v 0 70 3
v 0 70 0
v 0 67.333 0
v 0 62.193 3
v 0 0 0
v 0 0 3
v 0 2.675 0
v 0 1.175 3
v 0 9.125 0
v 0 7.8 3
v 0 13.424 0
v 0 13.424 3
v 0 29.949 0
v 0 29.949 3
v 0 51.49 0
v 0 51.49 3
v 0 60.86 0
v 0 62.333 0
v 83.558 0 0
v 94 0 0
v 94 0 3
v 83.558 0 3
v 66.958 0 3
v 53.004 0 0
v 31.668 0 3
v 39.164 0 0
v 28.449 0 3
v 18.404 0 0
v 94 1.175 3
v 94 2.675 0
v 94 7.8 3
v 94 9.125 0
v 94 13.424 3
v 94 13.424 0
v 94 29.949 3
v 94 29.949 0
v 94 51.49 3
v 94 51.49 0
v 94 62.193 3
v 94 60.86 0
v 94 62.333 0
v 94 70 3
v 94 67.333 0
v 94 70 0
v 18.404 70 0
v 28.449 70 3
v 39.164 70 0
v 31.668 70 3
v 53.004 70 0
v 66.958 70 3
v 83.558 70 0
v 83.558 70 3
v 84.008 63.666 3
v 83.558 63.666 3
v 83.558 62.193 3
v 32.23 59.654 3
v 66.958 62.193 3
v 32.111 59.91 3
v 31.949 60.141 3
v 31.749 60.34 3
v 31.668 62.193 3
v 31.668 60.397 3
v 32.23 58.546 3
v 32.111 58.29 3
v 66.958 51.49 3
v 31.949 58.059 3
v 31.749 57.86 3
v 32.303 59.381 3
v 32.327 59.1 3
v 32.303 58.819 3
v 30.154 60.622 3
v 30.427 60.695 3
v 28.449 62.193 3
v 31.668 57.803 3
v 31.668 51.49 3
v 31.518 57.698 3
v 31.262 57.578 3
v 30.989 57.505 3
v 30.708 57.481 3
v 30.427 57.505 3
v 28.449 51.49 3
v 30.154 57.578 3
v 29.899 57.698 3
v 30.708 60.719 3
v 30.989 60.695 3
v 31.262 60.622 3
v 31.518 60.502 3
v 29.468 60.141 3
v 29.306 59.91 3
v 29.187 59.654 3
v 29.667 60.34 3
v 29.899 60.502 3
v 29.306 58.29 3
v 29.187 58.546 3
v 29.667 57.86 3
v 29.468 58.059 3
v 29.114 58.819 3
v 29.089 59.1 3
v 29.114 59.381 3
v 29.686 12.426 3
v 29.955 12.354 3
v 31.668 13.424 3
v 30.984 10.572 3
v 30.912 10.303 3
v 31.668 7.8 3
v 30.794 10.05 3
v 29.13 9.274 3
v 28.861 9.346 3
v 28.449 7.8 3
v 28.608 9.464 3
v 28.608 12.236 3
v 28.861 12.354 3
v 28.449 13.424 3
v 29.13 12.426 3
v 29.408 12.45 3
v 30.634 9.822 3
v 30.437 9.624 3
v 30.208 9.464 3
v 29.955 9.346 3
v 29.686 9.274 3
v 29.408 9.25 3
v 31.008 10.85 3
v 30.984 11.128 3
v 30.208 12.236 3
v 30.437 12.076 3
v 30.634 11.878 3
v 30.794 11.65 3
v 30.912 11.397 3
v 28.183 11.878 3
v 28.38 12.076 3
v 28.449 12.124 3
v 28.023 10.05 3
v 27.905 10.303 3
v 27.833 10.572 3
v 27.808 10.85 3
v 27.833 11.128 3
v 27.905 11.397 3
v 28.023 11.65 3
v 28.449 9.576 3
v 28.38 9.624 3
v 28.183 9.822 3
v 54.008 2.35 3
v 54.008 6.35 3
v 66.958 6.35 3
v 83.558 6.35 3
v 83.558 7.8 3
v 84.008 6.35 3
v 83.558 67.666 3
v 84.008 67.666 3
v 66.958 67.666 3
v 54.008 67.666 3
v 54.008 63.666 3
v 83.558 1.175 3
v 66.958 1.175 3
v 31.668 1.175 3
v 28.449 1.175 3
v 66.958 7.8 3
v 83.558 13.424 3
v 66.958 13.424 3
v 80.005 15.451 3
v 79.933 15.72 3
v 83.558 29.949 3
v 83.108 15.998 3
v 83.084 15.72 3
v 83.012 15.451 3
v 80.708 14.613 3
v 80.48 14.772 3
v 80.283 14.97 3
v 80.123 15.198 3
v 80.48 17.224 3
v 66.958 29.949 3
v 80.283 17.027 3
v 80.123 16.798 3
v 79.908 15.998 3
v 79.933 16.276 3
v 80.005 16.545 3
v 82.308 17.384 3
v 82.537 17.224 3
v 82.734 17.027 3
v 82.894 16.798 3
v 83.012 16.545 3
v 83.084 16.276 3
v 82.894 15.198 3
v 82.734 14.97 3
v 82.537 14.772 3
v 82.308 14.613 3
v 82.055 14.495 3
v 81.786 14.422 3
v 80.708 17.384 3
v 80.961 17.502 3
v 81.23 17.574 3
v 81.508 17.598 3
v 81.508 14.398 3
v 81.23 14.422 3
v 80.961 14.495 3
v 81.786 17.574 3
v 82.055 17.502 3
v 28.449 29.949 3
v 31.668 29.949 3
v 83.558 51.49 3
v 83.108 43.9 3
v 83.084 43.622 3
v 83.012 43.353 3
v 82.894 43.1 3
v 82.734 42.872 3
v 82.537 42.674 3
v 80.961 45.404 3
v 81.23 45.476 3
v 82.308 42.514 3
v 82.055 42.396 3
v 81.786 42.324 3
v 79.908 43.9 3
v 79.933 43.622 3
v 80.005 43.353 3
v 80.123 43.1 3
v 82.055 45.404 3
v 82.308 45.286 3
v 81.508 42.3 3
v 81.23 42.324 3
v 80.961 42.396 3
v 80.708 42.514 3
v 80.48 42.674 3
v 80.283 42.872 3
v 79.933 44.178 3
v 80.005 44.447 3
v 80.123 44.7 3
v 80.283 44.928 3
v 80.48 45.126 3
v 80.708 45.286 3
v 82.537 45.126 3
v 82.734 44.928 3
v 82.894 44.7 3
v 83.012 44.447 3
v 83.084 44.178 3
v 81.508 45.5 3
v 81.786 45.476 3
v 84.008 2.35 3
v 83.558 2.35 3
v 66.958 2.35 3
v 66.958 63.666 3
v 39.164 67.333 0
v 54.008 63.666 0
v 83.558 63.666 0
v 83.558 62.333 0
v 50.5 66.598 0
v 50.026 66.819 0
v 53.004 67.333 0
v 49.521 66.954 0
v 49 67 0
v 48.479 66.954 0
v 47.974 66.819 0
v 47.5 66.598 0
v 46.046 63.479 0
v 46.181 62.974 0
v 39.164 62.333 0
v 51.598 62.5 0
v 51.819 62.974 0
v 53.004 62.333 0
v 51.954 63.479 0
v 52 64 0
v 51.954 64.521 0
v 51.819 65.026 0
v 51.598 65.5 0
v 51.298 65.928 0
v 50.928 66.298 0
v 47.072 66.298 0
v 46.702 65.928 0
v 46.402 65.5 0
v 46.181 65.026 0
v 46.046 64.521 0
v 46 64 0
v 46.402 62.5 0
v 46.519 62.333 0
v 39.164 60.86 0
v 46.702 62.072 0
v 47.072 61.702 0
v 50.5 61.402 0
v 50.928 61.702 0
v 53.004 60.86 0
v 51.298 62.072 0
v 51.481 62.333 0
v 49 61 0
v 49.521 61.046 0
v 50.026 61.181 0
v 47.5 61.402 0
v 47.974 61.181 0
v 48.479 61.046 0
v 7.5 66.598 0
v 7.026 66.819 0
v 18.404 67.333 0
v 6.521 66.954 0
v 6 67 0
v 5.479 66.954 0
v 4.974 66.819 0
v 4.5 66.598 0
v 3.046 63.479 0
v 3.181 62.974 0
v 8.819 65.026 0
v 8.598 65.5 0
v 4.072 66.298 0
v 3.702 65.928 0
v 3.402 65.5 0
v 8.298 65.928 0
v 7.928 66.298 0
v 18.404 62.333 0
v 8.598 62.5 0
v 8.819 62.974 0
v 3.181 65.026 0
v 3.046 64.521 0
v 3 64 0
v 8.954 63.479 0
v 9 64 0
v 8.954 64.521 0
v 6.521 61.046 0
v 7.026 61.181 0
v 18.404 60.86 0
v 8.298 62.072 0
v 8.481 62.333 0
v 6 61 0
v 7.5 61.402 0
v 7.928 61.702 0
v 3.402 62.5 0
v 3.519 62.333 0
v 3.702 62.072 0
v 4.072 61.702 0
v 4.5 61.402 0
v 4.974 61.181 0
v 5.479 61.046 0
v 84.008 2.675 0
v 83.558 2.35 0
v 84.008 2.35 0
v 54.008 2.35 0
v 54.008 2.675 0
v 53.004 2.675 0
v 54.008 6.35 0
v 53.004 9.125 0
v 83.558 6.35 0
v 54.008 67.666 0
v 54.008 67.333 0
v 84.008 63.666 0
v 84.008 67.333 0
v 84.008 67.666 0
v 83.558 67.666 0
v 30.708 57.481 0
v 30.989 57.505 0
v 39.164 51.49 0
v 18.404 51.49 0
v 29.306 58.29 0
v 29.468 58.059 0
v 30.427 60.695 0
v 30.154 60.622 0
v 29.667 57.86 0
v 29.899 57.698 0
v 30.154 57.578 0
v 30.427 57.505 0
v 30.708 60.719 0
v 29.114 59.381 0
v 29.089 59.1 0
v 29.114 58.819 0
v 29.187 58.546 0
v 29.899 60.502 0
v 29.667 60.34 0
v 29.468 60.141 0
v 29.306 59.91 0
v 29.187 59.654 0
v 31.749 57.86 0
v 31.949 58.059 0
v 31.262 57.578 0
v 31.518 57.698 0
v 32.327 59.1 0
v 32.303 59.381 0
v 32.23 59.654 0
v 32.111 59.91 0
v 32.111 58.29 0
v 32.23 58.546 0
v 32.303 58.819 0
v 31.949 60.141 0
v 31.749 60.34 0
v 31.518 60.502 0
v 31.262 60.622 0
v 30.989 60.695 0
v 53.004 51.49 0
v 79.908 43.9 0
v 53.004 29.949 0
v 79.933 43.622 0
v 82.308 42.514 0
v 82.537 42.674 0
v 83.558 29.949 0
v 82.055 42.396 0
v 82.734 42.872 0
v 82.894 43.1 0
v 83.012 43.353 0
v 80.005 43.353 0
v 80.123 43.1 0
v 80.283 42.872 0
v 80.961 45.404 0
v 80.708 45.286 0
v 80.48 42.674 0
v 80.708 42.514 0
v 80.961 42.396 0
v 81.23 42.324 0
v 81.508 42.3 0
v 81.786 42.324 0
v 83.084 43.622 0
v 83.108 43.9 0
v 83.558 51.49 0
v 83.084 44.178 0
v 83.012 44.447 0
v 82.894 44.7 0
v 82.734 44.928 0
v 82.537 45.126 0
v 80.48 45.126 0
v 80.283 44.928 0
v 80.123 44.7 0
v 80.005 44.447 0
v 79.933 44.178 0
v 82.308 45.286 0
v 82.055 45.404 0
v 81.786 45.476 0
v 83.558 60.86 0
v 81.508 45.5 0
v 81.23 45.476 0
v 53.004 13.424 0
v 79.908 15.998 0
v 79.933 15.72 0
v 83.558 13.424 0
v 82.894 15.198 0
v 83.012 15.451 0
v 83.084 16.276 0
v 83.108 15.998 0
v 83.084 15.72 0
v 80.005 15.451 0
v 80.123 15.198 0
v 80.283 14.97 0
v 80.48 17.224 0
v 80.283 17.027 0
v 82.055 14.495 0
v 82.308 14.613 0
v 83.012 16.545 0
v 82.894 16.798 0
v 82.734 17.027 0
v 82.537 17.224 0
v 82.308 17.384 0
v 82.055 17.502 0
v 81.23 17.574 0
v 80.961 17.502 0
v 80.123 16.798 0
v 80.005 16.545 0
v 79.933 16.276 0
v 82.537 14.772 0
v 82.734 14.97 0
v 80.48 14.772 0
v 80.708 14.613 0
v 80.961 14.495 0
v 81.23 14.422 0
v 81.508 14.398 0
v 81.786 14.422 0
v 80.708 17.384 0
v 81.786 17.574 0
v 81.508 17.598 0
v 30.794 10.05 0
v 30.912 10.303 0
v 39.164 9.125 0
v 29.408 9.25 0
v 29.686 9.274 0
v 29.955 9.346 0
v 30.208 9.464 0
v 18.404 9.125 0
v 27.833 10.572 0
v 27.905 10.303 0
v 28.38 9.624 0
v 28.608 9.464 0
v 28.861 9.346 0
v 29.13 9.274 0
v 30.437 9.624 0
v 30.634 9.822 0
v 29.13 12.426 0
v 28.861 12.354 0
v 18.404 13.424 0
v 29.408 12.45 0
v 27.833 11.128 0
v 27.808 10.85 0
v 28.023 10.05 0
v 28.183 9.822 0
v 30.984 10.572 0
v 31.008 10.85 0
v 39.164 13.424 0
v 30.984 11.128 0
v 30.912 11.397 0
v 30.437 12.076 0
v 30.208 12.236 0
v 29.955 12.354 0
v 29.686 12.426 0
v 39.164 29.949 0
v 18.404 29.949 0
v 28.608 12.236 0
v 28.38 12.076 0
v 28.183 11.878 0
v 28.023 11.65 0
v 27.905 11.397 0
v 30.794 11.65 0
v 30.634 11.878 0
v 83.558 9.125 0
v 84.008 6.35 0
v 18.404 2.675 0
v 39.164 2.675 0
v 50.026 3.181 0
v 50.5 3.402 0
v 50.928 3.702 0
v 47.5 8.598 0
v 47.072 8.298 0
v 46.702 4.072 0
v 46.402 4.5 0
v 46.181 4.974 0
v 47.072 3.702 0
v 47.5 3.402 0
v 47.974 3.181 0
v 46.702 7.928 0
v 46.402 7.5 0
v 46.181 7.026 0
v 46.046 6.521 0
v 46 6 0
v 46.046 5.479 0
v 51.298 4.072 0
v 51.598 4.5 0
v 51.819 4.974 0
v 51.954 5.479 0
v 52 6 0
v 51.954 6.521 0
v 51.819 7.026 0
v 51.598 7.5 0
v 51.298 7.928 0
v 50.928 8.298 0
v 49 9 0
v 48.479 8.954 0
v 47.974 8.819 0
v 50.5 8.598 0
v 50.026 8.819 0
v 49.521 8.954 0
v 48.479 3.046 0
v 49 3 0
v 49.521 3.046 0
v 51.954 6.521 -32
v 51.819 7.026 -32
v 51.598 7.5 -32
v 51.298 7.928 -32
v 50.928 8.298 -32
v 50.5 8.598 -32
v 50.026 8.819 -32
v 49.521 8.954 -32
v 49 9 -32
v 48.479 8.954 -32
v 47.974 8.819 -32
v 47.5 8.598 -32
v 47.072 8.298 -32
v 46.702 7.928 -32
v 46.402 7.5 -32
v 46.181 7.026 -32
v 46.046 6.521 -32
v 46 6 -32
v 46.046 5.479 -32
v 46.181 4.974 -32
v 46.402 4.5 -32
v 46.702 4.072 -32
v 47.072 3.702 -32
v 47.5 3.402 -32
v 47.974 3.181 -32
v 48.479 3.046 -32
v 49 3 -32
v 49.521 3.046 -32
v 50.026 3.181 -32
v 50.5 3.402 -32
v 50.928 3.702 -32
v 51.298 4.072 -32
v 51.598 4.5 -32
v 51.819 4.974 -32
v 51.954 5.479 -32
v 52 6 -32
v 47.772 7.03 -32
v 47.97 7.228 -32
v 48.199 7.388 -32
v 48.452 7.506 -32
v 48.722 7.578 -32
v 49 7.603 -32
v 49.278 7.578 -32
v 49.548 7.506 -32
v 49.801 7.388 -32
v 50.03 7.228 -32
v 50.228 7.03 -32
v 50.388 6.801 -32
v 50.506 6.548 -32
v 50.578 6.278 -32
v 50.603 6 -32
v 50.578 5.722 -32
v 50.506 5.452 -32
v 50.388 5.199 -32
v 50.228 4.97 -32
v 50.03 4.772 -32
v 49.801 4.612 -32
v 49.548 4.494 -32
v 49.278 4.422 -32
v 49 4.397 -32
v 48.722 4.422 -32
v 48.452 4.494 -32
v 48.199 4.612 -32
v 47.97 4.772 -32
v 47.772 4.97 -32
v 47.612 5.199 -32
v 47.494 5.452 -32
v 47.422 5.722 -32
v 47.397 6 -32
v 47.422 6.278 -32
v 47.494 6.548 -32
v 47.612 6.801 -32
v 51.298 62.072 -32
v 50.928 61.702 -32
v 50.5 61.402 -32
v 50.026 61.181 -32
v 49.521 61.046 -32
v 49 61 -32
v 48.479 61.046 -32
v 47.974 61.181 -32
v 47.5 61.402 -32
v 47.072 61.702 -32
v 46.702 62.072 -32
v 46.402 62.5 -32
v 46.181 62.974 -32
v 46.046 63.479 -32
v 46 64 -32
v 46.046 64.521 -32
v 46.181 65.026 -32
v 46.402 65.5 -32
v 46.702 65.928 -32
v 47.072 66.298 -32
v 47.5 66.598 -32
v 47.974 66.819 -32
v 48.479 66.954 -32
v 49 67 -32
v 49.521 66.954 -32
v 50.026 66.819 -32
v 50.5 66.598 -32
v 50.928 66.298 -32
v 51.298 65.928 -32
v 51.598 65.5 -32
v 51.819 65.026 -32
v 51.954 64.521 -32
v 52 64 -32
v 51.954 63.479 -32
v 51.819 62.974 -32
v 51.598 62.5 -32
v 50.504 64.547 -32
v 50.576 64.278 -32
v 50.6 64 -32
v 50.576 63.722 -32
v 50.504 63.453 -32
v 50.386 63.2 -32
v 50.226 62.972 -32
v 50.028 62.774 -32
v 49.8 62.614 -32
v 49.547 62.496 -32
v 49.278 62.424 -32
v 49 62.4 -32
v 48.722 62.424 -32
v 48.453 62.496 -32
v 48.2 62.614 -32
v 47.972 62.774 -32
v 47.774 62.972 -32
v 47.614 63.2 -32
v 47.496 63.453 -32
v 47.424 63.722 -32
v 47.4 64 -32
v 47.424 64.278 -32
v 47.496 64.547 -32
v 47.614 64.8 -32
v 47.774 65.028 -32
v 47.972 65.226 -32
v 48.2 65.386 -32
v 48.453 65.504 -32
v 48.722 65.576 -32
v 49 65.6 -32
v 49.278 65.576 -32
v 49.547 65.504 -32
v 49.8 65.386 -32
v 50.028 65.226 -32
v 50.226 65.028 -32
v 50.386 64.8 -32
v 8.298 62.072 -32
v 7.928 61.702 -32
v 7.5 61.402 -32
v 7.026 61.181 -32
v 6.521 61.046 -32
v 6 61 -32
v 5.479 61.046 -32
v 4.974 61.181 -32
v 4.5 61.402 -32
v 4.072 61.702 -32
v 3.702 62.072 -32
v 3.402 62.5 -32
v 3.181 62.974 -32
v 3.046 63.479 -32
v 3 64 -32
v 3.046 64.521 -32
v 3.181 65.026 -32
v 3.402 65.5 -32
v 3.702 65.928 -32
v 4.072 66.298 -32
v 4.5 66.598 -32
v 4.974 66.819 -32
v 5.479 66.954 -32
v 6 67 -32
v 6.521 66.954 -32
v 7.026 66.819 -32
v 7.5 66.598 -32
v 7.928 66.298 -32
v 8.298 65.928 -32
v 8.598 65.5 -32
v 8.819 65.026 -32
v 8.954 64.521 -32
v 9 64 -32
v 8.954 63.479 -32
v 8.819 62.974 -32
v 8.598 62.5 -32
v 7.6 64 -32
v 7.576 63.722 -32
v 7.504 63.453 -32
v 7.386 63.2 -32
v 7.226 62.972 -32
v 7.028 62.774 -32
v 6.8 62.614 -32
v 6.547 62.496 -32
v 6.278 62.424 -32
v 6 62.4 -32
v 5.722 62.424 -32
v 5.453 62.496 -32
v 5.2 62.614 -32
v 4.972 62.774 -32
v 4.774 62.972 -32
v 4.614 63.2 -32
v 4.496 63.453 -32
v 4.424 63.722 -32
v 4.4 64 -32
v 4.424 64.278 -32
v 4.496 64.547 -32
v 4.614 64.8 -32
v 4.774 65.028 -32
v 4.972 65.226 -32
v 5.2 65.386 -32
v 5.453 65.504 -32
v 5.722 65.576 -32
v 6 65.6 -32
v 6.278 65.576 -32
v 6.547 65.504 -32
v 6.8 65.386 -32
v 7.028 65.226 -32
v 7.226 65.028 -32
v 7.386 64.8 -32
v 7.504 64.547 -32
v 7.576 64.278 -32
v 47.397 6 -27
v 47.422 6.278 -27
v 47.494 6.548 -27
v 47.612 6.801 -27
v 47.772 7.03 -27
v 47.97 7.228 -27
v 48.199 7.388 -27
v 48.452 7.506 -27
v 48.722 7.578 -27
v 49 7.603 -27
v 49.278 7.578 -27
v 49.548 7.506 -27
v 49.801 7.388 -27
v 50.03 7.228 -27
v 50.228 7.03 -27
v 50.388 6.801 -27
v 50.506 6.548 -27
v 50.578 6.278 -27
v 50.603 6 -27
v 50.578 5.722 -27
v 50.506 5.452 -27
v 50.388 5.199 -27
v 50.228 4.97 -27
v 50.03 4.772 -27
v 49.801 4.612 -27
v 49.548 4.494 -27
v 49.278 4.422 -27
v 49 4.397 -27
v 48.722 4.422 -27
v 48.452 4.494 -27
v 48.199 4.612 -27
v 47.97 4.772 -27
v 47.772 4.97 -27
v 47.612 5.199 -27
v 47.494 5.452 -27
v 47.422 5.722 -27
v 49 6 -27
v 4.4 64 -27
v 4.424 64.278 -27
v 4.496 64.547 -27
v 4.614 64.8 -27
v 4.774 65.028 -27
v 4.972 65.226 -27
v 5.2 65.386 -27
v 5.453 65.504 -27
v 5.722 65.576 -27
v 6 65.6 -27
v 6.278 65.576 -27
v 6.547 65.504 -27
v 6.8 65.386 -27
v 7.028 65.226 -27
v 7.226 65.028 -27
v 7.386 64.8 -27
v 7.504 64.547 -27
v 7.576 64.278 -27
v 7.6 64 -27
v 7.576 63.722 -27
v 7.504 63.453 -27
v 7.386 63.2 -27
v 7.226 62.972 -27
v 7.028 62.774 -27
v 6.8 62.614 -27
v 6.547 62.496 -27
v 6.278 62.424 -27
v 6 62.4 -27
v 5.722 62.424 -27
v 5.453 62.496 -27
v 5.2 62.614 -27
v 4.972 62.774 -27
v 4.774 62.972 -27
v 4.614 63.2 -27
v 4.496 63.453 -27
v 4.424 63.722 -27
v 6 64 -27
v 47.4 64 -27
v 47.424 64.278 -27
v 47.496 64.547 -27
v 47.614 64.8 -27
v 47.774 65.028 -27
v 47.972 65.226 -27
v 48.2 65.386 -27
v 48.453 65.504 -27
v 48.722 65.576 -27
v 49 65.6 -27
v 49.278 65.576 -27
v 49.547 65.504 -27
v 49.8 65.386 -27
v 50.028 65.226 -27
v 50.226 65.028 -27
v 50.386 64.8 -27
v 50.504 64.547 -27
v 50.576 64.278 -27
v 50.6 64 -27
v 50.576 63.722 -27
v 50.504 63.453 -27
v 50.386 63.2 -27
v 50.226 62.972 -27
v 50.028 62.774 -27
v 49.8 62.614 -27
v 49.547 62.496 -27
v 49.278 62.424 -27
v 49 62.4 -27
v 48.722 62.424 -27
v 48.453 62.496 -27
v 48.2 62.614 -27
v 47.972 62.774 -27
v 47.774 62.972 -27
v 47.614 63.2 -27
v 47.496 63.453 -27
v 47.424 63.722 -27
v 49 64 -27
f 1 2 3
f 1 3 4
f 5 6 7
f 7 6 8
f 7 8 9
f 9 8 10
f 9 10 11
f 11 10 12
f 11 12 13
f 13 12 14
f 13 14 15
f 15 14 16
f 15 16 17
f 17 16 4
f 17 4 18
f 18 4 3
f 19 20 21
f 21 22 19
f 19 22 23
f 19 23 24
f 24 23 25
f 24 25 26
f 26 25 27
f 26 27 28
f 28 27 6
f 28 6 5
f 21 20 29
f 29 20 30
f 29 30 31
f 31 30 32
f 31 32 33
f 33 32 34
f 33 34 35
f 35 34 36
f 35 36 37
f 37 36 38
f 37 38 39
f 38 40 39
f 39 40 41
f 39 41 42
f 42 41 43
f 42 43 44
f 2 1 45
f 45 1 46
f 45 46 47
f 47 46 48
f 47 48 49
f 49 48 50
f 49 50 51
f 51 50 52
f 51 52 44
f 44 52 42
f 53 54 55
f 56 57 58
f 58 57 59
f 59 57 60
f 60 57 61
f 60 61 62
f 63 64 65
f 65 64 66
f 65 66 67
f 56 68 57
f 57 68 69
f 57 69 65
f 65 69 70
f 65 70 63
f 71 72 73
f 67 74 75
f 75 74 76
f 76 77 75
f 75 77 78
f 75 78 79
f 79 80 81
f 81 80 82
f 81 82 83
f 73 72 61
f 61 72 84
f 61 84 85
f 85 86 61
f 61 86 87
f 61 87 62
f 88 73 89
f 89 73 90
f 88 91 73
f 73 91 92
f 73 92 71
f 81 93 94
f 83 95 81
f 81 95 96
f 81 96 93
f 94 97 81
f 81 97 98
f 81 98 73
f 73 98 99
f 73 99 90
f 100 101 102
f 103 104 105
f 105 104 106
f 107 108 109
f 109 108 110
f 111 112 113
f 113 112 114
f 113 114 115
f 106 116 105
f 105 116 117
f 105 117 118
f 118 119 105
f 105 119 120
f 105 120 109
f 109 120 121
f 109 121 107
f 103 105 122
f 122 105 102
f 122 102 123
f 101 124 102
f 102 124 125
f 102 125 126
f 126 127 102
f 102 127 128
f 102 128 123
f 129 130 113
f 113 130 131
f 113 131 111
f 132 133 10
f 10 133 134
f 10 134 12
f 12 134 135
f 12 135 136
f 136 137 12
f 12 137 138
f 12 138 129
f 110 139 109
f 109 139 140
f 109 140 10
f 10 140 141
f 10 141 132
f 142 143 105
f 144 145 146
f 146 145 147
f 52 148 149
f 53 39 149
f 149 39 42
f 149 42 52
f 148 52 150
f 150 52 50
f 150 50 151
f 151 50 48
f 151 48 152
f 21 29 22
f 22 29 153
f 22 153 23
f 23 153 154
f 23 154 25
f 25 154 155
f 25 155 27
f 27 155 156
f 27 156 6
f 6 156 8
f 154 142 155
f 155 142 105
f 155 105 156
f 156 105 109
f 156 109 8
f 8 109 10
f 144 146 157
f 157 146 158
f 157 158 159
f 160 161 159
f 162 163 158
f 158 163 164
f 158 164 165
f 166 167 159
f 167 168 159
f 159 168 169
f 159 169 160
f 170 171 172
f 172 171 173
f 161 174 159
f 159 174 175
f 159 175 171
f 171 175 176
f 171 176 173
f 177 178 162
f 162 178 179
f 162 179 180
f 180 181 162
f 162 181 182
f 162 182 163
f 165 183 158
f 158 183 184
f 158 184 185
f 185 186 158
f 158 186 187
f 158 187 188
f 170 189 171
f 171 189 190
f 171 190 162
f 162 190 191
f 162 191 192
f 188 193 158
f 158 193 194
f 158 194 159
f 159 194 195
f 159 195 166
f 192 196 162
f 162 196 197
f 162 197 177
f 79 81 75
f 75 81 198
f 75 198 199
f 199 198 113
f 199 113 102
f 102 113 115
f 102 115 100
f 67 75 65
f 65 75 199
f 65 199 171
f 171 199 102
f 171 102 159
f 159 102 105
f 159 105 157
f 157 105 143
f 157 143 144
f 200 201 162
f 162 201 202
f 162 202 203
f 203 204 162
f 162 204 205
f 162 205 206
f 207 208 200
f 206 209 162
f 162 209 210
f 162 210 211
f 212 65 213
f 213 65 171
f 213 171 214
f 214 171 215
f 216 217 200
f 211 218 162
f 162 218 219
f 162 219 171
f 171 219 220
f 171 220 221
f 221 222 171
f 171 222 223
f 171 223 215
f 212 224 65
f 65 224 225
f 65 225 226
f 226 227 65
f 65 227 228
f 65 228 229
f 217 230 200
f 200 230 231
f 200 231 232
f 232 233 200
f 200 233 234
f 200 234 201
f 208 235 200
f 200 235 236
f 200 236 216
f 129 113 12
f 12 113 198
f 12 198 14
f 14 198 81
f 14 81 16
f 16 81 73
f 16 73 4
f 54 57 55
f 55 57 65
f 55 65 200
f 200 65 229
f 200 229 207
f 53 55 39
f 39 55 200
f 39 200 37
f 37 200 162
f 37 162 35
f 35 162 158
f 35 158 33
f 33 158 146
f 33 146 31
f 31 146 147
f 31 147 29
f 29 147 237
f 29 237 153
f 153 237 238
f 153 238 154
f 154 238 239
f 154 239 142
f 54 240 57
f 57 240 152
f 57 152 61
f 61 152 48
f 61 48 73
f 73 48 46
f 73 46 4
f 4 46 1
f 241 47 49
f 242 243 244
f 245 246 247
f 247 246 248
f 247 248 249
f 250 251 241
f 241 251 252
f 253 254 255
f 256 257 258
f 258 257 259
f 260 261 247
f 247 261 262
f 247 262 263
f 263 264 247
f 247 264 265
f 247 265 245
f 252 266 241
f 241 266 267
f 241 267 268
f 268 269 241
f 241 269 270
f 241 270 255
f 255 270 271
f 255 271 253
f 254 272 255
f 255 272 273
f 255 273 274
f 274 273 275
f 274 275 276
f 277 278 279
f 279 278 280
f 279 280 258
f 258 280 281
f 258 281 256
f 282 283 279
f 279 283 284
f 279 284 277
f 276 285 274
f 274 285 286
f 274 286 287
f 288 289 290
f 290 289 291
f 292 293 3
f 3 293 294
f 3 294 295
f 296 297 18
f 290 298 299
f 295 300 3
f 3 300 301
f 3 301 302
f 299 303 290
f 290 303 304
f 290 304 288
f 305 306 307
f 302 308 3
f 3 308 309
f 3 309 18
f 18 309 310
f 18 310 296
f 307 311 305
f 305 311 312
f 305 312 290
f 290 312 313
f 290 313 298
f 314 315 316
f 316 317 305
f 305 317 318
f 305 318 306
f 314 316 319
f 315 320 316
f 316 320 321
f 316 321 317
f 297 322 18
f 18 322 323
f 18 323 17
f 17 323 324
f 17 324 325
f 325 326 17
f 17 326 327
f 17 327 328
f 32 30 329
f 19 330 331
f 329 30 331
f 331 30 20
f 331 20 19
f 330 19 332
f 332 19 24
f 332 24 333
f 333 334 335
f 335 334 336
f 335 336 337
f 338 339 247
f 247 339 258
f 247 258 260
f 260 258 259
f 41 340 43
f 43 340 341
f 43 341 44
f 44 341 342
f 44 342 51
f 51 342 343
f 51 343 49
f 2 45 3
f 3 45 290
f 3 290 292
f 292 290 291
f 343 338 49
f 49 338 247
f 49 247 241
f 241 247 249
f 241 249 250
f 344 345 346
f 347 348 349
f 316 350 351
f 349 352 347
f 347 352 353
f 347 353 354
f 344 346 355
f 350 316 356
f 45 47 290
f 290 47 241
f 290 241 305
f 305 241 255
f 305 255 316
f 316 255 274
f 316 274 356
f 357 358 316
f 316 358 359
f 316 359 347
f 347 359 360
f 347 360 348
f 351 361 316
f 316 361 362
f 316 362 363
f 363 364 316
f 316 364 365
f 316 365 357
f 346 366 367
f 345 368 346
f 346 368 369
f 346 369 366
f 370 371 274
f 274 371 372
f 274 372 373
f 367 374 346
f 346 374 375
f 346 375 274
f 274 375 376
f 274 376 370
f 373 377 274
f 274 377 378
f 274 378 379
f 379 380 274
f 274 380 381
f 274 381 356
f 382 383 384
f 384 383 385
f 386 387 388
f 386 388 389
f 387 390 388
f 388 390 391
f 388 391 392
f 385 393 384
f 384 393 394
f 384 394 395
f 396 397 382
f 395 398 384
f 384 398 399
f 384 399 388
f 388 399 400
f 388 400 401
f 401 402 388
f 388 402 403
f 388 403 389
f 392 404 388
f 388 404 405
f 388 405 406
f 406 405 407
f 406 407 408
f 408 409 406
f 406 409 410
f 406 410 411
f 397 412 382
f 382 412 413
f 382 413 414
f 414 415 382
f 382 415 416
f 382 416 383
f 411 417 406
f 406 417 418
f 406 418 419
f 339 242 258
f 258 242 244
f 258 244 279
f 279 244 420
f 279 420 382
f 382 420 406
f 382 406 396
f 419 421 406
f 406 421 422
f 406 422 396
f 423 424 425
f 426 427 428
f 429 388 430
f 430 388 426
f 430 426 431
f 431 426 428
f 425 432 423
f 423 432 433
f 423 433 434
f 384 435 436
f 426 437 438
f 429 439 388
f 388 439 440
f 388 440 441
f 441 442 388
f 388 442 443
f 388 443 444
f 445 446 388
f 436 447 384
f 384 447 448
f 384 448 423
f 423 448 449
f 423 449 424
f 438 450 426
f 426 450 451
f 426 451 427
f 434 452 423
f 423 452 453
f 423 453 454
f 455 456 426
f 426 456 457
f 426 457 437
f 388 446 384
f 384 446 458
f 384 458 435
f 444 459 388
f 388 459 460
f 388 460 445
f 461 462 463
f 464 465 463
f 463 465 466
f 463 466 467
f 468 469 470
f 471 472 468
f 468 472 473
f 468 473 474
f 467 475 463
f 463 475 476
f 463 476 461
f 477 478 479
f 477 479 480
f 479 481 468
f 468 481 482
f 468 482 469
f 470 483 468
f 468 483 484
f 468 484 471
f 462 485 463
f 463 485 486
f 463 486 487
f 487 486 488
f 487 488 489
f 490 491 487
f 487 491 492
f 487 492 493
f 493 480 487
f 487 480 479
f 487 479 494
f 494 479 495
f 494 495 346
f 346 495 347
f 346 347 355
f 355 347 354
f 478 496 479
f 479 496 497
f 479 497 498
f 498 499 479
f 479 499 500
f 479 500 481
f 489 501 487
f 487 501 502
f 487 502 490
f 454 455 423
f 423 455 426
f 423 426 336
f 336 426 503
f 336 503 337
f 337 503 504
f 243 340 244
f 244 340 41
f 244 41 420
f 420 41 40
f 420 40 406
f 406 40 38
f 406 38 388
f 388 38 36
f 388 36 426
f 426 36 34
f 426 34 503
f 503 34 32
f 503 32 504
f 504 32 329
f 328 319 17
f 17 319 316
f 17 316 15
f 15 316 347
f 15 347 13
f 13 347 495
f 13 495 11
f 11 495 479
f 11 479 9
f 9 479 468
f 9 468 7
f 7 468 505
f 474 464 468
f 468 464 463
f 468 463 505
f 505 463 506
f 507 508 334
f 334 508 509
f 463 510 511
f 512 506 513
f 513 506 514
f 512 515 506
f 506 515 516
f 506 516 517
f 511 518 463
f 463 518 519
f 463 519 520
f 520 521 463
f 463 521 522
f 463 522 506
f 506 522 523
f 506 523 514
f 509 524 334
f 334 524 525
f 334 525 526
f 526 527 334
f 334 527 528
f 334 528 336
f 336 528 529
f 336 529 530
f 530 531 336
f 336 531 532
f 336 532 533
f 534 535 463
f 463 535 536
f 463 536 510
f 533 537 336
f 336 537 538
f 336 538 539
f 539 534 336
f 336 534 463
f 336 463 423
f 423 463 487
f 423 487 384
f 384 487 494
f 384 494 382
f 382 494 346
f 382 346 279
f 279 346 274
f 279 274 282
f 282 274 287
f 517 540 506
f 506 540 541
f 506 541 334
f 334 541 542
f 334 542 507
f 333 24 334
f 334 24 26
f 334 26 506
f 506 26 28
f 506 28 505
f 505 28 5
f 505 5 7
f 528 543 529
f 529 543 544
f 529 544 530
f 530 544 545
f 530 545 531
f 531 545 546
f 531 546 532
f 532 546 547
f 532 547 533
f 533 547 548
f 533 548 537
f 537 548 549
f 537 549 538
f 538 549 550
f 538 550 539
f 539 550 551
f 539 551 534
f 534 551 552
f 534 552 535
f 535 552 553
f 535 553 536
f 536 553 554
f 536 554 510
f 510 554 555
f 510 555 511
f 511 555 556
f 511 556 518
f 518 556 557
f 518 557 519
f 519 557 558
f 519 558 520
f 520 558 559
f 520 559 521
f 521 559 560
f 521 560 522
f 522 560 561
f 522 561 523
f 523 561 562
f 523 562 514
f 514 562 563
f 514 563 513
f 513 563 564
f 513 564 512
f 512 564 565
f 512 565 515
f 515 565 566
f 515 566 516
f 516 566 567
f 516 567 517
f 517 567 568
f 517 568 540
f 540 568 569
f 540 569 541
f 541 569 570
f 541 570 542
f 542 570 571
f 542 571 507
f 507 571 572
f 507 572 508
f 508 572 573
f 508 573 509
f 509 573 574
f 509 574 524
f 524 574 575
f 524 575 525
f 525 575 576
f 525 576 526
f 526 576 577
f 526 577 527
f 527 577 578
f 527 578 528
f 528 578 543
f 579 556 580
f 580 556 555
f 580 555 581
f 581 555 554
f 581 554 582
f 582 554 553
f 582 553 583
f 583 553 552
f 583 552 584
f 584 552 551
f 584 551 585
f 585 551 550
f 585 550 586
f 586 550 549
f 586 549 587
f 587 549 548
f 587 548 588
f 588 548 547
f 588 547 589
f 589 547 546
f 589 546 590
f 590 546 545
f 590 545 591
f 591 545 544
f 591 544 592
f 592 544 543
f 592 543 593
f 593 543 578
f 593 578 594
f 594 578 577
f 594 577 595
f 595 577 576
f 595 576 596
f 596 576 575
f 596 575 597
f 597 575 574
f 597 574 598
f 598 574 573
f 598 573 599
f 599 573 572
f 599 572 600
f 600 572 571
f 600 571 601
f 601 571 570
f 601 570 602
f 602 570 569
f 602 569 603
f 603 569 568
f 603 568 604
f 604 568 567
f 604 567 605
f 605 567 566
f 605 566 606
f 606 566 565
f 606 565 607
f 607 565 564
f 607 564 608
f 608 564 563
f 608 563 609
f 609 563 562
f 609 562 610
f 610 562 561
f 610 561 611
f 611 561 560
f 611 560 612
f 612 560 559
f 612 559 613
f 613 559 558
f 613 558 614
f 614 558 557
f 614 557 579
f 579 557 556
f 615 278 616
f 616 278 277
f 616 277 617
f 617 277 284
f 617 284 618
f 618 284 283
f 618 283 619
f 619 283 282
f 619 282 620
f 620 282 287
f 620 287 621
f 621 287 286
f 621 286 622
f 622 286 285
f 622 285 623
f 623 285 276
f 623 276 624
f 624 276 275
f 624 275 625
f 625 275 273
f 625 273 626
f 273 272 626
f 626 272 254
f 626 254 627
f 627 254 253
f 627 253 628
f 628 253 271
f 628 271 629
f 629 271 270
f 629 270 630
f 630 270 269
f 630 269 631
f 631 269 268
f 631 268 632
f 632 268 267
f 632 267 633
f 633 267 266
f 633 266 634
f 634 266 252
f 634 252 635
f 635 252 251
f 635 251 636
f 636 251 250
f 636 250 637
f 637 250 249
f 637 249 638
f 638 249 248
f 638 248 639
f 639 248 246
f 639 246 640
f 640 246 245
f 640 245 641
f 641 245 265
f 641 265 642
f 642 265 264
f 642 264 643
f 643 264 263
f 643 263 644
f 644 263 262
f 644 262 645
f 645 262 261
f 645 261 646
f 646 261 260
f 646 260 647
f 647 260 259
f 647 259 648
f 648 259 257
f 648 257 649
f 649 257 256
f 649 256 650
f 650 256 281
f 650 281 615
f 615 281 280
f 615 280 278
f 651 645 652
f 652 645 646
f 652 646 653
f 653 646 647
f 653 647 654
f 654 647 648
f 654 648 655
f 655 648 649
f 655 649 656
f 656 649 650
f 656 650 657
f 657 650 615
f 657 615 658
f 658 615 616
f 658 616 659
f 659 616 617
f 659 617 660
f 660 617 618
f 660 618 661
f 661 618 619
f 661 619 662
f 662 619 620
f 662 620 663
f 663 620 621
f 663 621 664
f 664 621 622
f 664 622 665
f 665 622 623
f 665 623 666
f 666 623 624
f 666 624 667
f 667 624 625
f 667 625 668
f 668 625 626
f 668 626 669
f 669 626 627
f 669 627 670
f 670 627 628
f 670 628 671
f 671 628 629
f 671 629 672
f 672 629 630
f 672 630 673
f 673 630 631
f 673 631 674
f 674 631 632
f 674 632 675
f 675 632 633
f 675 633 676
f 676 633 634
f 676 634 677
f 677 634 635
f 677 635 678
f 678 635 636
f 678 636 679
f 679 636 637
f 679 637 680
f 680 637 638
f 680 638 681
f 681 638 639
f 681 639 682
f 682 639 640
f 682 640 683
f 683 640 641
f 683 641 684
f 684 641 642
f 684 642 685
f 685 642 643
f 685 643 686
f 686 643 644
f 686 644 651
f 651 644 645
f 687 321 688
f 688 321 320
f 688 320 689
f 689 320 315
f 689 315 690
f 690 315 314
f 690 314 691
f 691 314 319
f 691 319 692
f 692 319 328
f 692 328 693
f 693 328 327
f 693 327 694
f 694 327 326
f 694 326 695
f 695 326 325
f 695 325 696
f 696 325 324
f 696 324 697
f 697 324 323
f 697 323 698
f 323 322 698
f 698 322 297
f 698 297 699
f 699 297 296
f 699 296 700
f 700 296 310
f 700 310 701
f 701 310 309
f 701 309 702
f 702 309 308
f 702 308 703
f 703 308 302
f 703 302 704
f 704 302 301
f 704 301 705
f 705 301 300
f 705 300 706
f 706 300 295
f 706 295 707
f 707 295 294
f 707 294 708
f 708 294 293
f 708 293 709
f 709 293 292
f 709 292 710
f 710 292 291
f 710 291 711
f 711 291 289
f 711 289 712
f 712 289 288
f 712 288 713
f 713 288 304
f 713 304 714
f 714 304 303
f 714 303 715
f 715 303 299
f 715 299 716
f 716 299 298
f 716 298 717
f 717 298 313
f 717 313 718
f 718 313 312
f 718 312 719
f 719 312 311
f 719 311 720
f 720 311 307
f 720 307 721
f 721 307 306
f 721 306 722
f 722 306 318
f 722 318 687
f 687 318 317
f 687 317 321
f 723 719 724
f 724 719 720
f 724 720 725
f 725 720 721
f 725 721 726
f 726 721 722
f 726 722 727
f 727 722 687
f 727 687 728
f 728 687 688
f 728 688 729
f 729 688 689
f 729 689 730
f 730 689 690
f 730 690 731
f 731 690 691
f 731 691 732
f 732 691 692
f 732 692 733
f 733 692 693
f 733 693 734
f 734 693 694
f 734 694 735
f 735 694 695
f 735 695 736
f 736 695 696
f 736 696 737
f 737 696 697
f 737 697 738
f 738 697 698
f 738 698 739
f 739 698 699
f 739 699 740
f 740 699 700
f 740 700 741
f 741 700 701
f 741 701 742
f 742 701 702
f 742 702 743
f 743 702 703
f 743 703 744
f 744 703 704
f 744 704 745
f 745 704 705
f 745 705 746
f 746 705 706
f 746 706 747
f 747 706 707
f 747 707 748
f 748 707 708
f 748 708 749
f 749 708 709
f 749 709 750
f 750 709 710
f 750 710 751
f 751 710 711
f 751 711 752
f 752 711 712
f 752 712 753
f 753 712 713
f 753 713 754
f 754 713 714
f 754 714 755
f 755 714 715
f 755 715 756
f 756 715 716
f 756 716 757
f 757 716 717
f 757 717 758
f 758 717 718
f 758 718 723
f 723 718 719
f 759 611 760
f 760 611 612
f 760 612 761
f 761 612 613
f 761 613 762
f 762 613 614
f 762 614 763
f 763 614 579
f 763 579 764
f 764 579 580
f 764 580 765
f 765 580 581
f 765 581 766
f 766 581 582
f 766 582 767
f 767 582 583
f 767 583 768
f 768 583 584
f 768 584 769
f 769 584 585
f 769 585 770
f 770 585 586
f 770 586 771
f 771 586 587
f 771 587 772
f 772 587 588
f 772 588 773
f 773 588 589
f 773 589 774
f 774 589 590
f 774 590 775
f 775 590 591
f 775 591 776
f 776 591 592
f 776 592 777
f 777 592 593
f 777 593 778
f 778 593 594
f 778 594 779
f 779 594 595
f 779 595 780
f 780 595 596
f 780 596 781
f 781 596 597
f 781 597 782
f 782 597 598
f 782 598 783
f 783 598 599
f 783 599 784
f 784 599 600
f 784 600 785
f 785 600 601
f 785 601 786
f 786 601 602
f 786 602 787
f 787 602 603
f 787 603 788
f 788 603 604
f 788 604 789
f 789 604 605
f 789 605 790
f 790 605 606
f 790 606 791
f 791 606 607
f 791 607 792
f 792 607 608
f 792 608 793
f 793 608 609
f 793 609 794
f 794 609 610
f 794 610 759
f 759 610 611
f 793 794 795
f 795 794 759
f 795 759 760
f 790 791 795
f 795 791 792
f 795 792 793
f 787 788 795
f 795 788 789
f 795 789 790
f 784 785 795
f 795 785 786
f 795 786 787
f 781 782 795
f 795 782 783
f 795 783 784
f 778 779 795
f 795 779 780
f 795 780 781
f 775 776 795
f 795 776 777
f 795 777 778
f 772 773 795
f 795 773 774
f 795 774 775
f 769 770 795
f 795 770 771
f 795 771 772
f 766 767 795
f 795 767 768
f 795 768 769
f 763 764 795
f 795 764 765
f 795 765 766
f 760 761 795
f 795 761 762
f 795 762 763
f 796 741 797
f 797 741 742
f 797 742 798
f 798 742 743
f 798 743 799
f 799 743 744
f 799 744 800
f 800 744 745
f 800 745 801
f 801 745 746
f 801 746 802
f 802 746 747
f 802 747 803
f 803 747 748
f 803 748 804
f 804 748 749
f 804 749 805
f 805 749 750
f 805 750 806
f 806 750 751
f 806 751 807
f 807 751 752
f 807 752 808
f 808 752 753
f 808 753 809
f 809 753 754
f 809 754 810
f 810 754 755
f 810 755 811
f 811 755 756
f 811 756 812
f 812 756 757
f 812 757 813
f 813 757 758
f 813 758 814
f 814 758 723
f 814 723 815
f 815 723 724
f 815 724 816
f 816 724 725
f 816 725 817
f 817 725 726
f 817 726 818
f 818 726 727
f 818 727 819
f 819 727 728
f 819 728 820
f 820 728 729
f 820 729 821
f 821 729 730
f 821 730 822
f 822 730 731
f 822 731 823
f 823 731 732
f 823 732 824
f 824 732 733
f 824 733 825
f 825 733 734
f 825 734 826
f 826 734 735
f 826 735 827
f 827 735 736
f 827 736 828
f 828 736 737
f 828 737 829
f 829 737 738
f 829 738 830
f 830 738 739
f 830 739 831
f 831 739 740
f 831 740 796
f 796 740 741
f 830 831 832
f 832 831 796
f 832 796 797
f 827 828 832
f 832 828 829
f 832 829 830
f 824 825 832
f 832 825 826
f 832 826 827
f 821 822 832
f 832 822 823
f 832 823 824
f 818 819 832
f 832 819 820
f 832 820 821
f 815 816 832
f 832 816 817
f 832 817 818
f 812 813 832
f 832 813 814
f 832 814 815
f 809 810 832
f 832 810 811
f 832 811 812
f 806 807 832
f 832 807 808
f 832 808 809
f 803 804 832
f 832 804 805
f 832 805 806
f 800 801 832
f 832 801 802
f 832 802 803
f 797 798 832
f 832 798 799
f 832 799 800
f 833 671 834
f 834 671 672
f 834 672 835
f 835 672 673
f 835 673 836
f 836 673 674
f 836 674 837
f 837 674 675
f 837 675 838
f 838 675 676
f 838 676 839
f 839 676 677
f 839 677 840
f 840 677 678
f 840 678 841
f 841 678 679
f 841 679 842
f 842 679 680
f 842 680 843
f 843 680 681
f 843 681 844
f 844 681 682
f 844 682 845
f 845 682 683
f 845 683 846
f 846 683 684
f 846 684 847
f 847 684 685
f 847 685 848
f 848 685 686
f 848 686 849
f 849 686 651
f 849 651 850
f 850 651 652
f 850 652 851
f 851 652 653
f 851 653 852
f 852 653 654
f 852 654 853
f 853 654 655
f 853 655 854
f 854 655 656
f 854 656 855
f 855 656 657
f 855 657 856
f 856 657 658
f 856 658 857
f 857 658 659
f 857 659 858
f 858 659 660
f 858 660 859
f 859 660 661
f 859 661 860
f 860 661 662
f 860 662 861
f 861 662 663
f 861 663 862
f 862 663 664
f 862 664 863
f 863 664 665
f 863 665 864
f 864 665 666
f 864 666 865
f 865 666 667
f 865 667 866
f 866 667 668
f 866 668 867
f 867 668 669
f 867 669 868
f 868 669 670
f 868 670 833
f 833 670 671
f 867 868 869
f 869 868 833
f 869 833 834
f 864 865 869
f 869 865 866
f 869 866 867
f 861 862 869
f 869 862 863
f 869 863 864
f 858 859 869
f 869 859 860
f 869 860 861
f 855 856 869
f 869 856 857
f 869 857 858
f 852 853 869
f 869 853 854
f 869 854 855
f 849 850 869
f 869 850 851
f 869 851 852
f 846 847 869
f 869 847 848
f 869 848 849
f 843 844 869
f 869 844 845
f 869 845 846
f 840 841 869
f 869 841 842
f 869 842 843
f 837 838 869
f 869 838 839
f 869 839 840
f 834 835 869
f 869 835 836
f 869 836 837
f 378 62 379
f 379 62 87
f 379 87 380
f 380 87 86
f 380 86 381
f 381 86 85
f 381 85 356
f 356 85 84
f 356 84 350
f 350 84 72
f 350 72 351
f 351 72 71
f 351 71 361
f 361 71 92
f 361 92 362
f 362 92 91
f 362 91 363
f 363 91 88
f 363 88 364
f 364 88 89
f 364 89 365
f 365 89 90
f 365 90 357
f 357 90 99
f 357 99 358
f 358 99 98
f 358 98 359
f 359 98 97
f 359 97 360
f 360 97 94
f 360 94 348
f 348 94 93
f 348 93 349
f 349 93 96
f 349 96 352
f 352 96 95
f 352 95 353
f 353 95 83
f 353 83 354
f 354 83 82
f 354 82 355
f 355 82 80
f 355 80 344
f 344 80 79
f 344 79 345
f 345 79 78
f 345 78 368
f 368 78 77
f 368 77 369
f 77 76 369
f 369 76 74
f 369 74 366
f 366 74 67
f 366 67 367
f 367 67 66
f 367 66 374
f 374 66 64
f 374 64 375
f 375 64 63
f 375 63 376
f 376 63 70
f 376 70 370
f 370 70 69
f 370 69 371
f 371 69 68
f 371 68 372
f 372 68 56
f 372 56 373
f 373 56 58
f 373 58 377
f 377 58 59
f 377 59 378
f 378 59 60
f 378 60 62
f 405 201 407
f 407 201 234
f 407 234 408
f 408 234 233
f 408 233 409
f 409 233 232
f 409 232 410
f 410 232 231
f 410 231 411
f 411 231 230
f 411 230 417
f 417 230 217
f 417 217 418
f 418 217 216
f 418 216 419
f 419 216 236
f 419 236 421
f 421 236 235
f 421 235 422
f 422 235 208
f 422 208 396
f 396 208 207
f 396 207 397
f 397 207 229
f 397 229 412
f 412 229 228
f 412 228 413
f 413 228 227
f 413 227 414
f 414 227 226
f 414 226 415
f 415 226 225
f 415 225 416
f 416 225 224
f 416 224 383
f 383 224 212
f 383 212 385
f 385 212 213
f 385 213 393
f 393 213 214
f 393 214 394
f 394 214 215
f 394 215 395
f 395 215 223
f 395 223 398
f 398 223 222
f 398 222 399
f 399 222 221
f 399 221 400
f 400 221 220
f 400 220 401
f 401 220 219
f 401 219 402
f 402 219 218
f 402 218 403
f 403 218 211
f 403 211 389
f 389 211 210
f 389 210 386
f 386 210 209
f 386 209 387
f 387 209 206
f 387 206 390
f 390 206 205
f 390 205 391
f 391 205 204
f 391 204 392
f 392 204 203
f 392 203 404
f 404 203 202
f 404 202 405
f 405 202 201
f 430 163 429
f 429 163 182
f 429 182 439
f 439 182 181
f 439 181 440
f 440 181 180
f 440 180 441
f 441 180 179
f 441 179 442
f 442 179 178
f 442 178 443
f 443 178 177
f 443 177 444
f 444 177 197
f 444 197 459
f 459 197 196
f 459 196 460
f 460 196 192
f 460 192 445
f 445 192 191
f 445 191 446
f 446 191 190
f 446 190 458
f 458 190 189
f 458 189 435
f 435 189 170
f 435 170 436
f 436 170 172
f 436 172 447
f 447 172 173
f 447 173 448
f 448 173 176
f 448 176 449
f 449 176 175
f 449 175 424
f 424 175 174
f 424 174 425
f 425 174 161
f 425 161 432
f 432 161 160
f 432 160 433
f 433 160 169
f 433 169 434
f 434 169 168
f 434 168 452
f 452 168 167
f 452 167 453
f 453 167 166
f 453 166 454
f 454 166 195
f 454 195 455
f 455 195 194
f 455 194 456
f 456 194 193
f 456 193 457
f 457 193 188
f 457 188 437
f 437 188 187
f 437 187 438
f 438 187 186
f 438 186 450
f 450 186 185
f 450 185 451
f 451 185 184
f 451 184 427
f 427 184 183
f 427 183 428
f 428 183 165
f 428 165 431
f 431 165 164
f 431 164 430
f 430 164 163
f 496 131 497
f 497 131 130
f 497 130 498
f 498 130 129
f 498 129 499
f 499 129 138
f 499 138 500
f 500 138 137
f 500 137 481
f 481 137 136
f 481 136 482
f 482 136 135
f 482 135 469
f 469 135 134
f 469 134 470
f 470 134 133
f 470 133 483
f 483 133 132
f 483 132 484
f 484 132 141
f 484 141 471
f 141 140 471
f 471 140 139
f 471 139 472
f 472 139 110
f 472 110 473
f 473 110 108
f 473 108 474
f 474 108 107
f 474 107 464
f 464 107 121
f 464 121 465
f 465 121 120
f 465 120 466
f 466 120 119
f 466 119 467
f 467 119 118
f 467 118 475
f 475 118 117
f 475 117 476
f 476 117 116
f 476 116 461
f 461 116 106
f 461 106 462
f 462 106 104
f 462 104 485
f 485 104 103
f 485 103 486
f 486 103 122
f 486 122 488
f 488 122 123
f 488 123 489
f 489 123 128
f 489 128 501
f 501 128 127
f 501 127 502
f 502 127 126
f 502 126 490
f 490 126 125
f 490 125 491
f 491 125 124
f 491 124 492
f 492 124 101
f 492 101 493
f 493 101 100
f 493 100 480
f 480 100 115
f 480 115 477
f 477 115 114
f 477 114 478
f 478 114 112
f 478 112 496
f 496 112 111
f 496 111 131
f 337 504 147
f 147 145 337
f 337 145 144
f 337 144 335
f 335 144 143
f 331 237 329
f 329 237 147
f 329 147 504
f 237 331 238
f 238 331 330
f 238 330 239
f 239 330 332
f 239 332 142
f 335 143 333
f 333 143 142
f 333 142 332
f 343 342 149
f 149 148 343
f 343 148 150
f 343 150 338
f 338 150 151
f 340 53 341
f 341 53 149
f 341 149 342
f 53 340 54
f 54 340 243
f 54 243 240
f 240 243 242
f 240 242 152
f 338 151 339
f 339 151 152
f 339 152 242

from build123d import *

# Parameters (mm, degrees)
SKETCH1_W           = 94
SKETCH1_H           = 70
BOSS_EXTRUDE2_DEPTH = 3
SKETCH3_R           = 3
BOSS_EXTRUDE5_DEPTH = 35
SKETCH7_R           = 1.602627629
CUT_EXTRUDE1_DEPTH  = 5
SKETCH8_R           = 1.6
CUT_EXTRUDE2_DEPTH  = 5
SKETCH9_R           = 1.6
CUT_EXTRUDE3_DEPTH  = 5
SKETCH10_W          = 30
SKETCH10_H          = 4
SKETCH10_R          = 1.6
SKETCH10_R_2        = 1.619244763
CUT_EXTRUDE5_DEPTH  = 5


with BuildPart() as part:
    # Sketch1 → Boss-Extrude2 (new body)
    with BuildSketch(Plane.XY):
        with Locations((47, 35)):
            Rectangle(SKETCH1_W, SKETCH1_H)
    extrude(amount=BOSS_EXTRUDE2_DEPTH)

    # Sketch3 → Boss-Extrude5 (add)
    with BuildSketch(Plane.XY.offset(3)):
        with Locations((49, 6)):
            Circle(SKETCH3_R)
        with Locations((49, 64)):
            Circle(SKETCH3_R)
        with Locations((6, 64)):
            Circle(SKETCH3_R)
    extrude(amount=-BOSS_EXTRUDE5_DEPTH)

    # Sketch7 → Cut-Extrude1 (cut)
    with BuildSketch(Plane(origin=(0, 0, -32), x_dir=(-1, 0, 0), z_dir=(0, 0, -1))):
        with Locations((-49, 6)):
            Circle(SKETCH7_R)
    extrude(amount=-CUT_EXTRUDE1_DEPTH, mode=Mode.SUBTRACT)

    # Sketch8 → Cut-Extrude2 (cut)
    with BuildSketch(Plane(origin=(0, 0, -32), x_dir=(-1, 0, 0), z_dir=(0, 0, -1))):
        with Locations((-6, 64)):
            Circle(SKETCH8_R)
    extrude(amount=-CUT_EXTRUDE2_DEPTH, mode=Mode.SUBTRACT)

    # Sketch9 → Cut-Extrude3 (cut)
    with BuildSketch(Plane(origin=(0, 0, -32), x_dir=(-1, 0, 0), z_dir=(0, 0, -1))):
        with Locations((-49, 64)):
            Circle(SKETCH9_R)
    extrude(amount=-CUT_EXTRUDE3_DEPTH, mode=Mode.SUBTRACT)

    # Sketch10 → Cut-Extrude5 (cut)
    with BuildSketch(Plane.XY.offset(3)):
        with Locations((69.008203537, 65.665805626)):
            Rectangle(SKETCH10_W, SKETCH10_H)
        with Locations((69.008203537, 4.35)):
            Rectangle(SKETCH10_W, SKETCH10_H)
        with Locations((29.408203537, 10.85)):
            Circle(SKETCH10_R)
        with Locations((81.508203537, 15.998164517)):
            Circle(SKETCH10_R)
        with Locations((81.508203537, 43.9)):
            Circle(SKETCH10_R)
        with Locations((30.708203537, 59.1)):
            Circle(SKETCH10_R_2)
    extrude(amount=-CUT_EXTRUDE5_DEPTH, mode=Mode.SUBTRACT)


solid = part.part
